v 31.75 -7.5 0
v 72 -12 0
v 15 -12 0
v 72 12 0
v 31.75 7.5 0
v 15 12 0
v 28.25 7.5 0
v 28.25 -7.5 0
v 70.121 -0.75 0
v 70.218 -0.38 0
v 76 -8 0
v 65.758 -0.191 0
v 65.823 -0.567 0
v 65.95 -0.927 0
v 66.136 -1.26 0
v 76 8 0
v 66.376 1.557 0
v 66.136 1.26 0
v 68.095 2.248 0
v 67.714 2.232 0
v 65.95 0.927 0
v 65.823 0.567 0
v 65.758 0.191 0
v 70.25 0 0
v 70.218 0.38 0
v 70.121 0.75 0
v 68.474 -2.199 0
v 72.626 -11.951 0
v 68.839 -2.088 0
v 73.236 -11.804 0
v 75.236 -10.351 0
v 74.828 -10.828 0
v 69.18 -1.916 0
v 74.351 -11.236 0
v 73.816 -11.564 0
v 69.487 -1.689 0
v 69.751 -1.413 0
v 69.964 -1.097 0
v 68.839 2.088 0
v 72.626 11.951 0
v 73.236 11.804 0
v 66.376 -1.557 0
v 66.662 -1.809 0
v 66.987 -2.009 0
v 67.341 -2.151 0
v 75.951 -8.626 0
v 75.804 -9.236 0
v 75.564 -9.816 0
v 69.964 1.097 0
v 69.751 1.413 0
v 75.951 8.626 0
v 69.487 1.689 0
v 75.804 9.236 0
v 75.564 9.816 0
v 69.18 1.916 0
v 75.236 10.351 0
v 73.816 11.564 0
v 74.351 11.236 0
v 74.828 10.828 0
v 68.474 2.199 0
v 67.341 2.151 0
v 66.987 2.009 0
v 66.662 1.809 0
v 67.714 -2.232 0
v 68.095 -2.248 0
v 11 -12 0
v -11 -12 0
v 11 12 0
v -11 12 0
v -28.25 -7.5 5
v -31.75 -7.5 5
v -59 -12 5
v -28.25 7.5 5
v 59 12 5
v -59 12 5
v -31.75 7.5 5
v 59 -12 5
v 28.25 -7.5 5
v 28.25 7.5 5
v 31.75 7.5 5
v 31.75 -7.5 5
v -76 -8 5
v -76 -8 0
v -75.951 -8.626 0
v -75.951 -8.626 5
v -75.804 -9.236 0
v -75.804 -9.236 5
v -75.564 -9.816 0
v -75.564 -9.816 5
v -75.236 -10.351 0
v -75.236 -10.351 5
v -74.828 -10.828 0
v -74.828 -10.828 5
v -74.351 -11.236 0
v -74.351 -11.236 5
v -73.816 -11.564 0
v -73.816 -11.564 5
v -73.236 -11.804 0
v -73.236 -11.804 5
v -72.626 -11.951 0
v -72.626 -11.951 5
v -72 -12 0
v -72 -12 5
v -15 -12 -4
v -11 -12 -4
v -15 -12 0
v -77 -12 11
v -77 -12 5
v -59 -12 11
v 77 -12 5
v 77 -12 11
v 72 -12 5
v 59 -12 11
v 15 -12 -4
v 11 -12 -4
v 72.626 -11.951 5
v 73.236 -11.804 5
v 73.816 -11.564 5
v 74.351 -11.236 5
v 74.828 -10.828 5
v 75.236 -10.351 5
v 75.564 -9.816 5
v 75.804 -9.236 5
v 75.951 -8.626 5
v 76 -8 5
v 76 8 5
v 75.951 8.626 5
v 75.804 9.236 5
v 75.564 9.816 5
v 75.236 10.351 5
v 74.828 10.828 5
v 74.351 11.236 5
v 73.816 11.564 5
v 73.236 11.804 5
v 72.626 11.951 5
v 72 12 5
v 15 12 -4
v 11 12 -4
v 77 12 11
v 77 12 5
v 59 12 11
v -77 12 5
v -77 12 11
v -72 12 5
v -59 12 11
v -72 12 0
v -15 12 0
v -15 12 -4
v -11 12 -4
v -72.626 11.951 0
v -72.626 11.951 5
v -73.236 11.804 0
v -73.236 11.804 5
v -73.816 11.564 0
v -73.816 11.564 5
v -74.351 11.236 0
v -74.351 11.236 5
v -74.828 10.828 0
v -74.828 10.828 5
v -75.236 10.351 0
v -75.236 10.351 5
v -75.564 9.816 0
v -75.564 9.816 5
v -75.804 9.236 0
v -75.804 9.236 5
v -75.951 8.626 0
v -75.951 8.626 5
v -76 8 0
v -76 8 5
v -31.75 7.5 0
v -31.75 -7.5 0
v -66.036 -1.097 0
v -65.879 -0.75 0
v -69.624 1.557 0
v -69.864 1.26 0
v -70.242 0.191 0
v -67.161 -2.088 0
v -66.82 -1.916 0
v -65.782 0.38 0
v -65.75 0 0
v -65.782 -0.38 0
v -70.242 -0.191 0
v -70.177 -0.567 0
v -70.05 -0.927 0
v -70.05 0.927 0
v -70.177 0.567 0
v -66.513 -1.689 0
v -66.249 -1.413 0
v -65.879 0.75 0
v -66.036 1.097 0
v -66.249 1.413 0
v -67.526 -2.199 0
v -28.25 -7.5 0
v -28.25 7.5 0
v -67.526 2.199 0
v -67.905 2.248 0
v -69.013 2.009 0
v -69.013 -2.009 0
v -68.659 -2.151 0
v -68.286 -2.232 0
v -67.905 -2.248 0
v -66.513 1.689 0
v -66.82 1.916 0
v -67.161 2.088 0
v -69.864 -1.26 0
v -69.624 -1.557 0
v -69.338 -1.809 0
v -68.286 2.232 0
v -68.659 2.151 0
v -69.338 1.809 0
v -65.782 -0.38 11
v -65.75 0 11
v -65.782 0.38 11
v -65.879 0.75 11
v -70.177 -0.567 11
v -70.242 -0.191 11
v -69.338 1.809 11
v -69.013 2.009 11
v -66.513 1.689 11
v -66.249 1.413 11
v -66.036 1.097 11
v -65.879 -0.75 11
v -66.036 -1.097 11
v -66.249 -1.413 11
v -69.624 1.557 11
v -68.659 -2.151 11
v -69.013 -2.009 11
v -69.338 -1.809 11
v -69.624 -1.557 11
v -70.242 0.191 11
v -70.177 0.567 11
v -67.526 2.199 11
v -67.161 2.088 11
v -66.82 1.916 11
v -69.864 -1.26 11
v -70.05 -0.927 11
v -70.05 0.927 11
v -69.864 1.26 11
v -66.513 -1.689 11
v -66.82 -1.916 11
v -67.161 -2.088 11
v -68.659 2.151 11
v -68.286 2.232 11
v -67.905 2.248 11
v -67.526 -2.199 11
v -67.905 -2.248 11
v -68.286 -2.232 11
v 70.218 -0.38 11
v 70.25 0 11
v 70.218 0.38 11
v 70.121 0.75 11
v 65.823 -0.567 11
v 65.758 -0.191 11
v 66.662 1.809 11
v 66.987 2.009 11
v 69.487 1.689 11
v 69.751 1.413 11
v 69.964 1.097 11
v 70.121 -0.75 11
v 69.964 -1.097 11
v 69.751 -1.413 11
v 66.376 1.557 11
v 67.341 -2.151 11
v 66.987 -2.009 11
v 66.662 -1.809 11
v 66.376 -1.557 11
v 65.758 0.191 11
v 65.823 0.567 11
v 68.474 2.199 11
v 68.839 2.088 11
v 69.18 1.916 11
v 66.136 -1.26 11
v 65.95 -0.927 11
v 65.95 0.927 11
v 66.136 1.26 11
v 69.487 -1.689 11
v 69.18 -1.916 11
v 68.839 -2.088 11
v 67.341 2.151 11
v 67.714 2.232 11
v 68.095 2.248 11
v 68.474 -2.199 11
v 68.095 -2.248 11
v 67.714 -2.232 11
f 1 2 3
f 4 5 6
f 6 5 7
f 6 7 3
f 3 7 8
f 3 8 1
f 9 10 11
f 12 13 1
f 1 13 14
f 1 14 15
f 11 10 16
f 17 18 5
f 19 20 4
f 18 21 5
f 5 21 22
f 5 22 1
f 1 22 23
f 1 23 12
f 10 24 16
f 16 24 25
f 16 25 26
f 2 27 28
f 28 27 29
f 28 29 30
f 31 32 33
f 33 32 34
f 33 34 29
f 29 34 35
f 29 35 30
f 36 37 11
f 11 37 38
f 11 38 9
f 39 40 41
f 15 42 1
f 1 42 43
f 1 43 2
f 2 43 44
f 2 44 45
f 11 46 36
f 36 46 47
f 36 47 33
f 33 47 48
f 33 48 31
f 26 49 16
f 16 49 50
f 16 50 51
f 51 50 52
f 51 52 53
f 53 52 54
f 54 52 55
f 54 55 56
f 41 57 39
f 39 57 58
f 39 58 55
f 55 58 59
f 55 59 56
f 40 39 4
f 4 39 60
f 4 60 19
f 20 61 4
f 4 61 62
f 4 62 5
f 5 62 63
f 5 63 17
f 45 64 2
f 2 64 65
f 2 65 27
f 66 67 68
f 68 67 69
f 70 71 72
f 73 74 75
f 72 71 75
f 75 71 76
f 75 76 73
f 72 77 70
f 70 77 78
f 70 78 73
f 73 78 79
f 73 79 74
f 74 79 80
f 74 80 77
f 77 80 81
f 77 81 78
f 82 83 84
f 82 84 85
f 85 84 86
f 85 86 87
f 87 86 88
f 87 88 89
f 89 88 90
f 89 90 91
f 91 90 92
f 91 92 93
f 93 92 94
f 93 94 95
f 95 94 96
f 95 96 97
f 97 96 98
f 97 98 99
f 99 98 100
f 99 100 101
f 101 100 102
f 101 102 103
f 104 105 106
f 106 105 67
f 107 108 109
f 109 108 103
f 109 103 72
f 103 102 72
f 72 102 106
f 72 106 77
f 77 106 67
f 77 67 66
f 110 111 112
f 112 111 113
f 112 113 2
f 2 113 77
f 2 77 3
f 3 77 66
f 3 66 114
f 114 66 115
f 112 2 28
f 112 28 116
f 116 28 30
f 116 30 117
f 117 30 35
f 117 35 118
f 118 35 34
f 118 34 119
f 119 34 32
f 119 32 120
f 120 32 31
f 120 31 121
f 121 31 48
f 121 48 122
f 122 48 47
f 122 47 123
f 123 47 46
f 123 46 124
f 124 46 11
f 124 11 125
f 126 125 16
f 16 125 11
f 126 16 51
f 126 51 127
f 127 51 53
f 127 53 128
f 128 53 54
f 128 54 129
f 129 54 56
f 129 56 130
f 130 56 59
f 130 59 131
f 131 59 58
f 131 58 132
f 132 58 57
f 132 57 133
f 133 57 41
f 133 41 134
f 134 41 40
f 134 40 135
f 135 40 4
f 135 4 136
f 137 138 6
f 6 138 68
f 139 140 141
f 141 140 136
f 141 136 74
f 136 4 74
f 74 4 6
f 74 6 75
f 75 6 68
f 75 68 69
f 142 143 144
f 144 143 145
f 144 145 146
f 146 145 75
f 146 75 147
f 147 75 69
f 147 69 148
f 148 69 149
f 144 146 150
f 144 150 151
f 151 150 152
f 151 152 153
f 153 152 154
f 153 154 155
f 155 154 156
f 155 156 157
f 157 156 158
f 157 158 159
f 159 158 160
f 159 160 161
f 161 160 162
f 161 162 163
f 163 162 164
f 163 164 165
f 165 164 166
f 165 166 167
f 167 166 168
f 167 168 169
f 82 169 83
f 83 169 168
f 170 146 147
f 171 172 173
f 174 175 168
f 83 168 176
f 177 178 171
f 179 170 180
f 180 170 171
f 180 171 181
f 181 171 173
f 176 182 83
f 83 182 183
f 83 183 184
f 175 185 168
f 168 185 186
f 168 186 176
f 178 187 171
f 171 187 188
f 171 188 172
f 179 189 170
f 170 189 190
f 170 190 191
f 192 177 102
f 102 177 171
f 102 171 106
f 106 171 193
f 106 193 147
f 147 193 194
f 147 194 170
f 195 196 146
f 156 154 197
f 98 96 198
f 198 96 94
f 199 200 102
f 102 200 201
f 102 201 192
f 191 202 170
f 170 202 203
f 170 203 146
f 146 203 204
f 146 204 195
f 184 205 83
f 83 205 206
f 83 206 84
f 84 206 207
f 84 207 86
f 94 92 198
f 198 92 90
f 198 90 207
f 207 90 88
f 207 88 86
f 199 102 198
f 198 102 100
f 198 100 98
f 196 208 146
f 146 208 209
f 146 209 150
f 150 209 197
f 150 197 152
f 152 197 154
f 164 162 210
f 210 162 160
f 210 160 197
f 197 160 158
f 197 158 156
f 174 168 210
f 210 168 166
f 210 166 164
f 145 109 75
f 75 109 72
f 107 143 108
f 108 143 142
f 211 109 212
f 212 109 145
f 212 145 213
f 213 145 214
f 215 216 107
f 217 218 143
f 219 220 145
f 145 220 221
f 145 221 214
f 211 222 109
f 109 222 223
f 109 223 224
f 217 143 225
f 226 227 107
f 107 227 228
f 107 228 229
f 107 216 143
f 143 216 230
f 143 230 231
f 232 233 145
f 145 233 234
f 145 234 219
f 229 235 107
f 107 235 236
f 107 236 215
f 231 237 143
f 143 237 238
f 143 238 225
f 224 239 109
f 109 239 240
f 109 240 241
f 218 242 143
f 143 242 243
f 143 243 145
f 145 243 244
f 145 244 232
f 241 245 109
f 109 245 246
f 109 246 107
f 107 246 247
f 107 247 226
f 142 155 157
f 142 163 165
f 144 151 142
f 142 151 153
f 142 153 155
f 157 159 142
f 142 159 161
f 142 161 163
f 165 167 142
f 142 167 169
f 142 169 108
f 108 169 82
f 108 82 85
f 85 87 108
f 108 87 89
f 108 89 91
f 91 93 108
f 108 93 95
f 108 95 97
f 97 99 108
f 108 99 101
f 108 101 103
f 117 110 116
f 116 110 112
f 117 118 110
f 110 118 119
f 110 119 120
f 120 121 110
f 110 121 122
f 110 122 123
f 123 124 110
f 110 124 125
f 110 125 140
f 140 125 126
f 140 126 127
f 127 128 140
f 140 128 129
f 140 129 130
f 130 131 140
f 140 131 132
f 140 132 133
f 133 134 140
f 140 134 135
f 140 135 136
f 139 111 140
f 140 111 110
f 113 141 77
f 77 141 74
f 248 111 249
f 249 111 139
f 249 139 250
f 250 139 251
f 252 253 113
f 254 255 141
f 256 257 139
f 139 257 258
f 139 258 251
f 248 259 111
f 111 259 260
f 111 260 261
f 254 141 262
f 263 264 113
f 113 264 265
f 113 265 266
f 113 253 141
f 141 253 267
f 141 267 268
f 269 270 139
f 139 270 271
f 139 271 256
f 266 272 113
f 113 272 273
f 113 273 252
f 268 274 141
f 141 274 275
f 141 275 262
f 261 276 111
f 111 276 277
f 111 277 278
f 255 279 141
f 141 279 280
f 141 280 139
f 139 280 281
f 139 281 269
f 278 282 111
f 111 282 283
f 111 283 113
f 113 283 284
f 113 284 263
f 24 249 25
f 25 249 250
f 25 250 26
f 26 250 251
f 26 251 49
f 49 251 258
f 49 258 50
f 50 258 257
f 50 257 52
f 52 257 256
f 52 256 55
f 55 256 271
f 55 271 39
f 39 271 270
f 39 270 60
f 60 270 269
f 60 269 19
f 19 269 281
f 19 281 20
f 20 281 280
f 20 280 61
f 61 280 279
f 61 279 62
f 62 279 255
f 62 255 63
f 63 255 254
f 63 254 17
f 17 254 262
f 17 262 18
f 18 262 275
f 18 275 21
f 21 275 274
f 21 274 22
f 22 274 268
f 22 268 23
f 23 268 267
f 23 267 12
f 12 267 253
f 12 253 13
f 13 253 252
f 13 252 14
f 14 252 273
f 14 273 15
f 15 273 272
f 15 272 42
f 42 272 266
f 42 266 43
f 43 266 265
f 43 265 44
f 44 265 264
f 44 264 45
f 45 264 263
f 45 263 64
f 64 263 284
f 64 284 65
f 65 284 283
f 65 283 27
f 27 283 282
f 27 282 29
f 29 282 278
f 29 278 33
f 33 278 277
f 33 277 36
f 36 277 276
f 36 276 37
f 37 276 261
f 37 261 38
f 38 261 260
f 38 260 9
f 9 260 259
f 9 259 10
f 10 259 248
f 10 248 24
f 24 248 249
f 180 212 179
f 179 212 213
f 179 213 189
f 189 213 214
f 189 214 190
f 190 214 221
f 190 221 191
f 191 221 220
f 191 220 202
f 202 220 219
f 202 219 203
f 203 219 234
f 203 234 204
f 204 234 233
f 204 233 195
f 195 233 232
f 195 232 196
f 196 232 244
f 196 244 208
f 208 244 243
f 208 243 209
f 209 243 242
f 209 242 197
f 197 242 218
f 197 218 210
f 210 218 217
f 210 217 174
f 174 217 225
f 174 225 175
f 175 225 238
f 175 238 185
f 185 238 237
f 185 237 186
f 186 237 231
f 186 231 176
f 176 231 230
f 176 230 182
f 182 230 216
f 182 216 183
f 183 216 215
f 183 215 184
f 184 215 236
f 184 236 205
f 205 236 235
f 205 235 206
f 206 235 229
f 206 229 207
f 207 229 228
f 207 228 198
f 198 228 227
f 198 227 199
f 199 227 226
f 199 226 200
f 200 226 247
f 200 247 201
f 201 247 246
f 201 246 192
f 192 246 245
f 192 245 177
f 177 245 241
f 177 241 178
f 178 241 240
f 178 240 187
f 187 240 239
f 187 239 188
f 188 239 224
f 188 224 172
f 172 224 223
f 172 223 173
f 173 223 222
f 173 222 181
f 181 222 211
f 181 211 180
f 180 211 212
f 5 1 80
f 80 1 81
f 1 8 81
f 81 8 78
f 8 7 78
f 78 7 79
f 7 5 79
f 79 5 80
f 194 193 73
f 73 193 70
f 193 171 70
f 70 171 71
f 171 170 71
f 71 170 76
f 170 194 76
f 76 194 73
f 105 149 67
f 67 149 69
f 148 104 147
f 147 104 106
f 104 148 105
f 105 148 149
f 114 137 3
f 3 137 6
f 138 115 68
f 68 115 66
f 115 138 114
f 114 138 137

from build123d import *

# Parameters (mm, degrees)
BOSS_EXTRUDE1_DEPTH = 5
SKETCH2_W           = 18
SKETCH2_H           = 24
BOSS_EXTRUDE2_DEPTH = 6
SKETCH3_R           = 2.25
CUT_EXTRUDE1_DEPTH  = 79.70196948
SKETCH4_W           = 3.5
SKETCH4_H           = 15
CUT_EXTRUDE2_DEPTH  = 79.160092119
SKETCH5_W           = 4
SKETCH5_H           = 24
BOSS_EXTRUDE3_DEPTH = 4


with BuildPart() as part:
    # Sketch1 → Boss-Extrude1 (new body)
    with BuildSketch(Plane.XY):
        with BuildLine():
            Line((-72, -12), (72, -12))
            ThreePointArc((72, -12), (74.828427125, -10.828427125), (76, -8))
            Line((76, -8), (76, 8))
            ThreePointArc((76, 8), (74.828427125, 10.828427125), (72, 12))
            Line((72, 12), (-72, 12))
            ThreePointArc((-72, 12), (-74.828427125, 10.828427125), (-76, 8))
            Line((-76, 8), (-76, -8))
            ThreePointArc((-76, -8), (-74.828427125, -10.828427125), (-72, -12))
        make_face()
    extrude(amount=BOSS_EXTRUDE1_DEPTH)

    # Sketch2 → Boss-Extrude2 (add)
    with BuildSketch(Plane.XY.offset(5)):
        with Locations((-68, 0)):
            Rectangle(SKETCH2_W, SKETCH2_H)
        with Locations((68, 0)):
            Rectangle(SKETCH2_W, SKETCH2_H)
    extrude(amount=BOSS_EXTRUDE2_DEPTH)

    # Sketch3 → Cut-Extrude1 (cut, through all)
    with BuildSketch(Plane.XY.offset(11)):
        with Locations((-68, 0)):
            Circle(SKETCH3_R)
        with Locations((68, 0)):
            Circle(SKETCH3_R)
    extrude(amount=-CUT_EXTRUDE1_DEPTH, mode=Mode.SUBTRACT)

    # Sketch4 → Cut-Extrude2 (cut, through all)
    with BuildSketch(Plane.XY.offset(5)):
        with Locations((-30, 0)):
            Rectangle(SKETCH4_W, SKETCH4_H)
        with Locations((30, 0)):
            Rectangle(SKETCH4_W, SKETCH4_H)
    extrude(amount=-CUT_EXTRUDE2_DEPTH, mode=Mode.SUBTRACT)

    # Sketch5 → Boss-Extrude3 (add)
    with BuildSketch(Plane.XY):
        with Locations((-13, 0)):
            Rectangle(SKETCH5_W, SKETCH5_H)
        with Locations((13, 0)):
            Rectangle(SKETCH5_W, SKETCH5_H)
    extrude(amount=-BOSS_EXTRUDE3_DEPTH)


solid = part.part
